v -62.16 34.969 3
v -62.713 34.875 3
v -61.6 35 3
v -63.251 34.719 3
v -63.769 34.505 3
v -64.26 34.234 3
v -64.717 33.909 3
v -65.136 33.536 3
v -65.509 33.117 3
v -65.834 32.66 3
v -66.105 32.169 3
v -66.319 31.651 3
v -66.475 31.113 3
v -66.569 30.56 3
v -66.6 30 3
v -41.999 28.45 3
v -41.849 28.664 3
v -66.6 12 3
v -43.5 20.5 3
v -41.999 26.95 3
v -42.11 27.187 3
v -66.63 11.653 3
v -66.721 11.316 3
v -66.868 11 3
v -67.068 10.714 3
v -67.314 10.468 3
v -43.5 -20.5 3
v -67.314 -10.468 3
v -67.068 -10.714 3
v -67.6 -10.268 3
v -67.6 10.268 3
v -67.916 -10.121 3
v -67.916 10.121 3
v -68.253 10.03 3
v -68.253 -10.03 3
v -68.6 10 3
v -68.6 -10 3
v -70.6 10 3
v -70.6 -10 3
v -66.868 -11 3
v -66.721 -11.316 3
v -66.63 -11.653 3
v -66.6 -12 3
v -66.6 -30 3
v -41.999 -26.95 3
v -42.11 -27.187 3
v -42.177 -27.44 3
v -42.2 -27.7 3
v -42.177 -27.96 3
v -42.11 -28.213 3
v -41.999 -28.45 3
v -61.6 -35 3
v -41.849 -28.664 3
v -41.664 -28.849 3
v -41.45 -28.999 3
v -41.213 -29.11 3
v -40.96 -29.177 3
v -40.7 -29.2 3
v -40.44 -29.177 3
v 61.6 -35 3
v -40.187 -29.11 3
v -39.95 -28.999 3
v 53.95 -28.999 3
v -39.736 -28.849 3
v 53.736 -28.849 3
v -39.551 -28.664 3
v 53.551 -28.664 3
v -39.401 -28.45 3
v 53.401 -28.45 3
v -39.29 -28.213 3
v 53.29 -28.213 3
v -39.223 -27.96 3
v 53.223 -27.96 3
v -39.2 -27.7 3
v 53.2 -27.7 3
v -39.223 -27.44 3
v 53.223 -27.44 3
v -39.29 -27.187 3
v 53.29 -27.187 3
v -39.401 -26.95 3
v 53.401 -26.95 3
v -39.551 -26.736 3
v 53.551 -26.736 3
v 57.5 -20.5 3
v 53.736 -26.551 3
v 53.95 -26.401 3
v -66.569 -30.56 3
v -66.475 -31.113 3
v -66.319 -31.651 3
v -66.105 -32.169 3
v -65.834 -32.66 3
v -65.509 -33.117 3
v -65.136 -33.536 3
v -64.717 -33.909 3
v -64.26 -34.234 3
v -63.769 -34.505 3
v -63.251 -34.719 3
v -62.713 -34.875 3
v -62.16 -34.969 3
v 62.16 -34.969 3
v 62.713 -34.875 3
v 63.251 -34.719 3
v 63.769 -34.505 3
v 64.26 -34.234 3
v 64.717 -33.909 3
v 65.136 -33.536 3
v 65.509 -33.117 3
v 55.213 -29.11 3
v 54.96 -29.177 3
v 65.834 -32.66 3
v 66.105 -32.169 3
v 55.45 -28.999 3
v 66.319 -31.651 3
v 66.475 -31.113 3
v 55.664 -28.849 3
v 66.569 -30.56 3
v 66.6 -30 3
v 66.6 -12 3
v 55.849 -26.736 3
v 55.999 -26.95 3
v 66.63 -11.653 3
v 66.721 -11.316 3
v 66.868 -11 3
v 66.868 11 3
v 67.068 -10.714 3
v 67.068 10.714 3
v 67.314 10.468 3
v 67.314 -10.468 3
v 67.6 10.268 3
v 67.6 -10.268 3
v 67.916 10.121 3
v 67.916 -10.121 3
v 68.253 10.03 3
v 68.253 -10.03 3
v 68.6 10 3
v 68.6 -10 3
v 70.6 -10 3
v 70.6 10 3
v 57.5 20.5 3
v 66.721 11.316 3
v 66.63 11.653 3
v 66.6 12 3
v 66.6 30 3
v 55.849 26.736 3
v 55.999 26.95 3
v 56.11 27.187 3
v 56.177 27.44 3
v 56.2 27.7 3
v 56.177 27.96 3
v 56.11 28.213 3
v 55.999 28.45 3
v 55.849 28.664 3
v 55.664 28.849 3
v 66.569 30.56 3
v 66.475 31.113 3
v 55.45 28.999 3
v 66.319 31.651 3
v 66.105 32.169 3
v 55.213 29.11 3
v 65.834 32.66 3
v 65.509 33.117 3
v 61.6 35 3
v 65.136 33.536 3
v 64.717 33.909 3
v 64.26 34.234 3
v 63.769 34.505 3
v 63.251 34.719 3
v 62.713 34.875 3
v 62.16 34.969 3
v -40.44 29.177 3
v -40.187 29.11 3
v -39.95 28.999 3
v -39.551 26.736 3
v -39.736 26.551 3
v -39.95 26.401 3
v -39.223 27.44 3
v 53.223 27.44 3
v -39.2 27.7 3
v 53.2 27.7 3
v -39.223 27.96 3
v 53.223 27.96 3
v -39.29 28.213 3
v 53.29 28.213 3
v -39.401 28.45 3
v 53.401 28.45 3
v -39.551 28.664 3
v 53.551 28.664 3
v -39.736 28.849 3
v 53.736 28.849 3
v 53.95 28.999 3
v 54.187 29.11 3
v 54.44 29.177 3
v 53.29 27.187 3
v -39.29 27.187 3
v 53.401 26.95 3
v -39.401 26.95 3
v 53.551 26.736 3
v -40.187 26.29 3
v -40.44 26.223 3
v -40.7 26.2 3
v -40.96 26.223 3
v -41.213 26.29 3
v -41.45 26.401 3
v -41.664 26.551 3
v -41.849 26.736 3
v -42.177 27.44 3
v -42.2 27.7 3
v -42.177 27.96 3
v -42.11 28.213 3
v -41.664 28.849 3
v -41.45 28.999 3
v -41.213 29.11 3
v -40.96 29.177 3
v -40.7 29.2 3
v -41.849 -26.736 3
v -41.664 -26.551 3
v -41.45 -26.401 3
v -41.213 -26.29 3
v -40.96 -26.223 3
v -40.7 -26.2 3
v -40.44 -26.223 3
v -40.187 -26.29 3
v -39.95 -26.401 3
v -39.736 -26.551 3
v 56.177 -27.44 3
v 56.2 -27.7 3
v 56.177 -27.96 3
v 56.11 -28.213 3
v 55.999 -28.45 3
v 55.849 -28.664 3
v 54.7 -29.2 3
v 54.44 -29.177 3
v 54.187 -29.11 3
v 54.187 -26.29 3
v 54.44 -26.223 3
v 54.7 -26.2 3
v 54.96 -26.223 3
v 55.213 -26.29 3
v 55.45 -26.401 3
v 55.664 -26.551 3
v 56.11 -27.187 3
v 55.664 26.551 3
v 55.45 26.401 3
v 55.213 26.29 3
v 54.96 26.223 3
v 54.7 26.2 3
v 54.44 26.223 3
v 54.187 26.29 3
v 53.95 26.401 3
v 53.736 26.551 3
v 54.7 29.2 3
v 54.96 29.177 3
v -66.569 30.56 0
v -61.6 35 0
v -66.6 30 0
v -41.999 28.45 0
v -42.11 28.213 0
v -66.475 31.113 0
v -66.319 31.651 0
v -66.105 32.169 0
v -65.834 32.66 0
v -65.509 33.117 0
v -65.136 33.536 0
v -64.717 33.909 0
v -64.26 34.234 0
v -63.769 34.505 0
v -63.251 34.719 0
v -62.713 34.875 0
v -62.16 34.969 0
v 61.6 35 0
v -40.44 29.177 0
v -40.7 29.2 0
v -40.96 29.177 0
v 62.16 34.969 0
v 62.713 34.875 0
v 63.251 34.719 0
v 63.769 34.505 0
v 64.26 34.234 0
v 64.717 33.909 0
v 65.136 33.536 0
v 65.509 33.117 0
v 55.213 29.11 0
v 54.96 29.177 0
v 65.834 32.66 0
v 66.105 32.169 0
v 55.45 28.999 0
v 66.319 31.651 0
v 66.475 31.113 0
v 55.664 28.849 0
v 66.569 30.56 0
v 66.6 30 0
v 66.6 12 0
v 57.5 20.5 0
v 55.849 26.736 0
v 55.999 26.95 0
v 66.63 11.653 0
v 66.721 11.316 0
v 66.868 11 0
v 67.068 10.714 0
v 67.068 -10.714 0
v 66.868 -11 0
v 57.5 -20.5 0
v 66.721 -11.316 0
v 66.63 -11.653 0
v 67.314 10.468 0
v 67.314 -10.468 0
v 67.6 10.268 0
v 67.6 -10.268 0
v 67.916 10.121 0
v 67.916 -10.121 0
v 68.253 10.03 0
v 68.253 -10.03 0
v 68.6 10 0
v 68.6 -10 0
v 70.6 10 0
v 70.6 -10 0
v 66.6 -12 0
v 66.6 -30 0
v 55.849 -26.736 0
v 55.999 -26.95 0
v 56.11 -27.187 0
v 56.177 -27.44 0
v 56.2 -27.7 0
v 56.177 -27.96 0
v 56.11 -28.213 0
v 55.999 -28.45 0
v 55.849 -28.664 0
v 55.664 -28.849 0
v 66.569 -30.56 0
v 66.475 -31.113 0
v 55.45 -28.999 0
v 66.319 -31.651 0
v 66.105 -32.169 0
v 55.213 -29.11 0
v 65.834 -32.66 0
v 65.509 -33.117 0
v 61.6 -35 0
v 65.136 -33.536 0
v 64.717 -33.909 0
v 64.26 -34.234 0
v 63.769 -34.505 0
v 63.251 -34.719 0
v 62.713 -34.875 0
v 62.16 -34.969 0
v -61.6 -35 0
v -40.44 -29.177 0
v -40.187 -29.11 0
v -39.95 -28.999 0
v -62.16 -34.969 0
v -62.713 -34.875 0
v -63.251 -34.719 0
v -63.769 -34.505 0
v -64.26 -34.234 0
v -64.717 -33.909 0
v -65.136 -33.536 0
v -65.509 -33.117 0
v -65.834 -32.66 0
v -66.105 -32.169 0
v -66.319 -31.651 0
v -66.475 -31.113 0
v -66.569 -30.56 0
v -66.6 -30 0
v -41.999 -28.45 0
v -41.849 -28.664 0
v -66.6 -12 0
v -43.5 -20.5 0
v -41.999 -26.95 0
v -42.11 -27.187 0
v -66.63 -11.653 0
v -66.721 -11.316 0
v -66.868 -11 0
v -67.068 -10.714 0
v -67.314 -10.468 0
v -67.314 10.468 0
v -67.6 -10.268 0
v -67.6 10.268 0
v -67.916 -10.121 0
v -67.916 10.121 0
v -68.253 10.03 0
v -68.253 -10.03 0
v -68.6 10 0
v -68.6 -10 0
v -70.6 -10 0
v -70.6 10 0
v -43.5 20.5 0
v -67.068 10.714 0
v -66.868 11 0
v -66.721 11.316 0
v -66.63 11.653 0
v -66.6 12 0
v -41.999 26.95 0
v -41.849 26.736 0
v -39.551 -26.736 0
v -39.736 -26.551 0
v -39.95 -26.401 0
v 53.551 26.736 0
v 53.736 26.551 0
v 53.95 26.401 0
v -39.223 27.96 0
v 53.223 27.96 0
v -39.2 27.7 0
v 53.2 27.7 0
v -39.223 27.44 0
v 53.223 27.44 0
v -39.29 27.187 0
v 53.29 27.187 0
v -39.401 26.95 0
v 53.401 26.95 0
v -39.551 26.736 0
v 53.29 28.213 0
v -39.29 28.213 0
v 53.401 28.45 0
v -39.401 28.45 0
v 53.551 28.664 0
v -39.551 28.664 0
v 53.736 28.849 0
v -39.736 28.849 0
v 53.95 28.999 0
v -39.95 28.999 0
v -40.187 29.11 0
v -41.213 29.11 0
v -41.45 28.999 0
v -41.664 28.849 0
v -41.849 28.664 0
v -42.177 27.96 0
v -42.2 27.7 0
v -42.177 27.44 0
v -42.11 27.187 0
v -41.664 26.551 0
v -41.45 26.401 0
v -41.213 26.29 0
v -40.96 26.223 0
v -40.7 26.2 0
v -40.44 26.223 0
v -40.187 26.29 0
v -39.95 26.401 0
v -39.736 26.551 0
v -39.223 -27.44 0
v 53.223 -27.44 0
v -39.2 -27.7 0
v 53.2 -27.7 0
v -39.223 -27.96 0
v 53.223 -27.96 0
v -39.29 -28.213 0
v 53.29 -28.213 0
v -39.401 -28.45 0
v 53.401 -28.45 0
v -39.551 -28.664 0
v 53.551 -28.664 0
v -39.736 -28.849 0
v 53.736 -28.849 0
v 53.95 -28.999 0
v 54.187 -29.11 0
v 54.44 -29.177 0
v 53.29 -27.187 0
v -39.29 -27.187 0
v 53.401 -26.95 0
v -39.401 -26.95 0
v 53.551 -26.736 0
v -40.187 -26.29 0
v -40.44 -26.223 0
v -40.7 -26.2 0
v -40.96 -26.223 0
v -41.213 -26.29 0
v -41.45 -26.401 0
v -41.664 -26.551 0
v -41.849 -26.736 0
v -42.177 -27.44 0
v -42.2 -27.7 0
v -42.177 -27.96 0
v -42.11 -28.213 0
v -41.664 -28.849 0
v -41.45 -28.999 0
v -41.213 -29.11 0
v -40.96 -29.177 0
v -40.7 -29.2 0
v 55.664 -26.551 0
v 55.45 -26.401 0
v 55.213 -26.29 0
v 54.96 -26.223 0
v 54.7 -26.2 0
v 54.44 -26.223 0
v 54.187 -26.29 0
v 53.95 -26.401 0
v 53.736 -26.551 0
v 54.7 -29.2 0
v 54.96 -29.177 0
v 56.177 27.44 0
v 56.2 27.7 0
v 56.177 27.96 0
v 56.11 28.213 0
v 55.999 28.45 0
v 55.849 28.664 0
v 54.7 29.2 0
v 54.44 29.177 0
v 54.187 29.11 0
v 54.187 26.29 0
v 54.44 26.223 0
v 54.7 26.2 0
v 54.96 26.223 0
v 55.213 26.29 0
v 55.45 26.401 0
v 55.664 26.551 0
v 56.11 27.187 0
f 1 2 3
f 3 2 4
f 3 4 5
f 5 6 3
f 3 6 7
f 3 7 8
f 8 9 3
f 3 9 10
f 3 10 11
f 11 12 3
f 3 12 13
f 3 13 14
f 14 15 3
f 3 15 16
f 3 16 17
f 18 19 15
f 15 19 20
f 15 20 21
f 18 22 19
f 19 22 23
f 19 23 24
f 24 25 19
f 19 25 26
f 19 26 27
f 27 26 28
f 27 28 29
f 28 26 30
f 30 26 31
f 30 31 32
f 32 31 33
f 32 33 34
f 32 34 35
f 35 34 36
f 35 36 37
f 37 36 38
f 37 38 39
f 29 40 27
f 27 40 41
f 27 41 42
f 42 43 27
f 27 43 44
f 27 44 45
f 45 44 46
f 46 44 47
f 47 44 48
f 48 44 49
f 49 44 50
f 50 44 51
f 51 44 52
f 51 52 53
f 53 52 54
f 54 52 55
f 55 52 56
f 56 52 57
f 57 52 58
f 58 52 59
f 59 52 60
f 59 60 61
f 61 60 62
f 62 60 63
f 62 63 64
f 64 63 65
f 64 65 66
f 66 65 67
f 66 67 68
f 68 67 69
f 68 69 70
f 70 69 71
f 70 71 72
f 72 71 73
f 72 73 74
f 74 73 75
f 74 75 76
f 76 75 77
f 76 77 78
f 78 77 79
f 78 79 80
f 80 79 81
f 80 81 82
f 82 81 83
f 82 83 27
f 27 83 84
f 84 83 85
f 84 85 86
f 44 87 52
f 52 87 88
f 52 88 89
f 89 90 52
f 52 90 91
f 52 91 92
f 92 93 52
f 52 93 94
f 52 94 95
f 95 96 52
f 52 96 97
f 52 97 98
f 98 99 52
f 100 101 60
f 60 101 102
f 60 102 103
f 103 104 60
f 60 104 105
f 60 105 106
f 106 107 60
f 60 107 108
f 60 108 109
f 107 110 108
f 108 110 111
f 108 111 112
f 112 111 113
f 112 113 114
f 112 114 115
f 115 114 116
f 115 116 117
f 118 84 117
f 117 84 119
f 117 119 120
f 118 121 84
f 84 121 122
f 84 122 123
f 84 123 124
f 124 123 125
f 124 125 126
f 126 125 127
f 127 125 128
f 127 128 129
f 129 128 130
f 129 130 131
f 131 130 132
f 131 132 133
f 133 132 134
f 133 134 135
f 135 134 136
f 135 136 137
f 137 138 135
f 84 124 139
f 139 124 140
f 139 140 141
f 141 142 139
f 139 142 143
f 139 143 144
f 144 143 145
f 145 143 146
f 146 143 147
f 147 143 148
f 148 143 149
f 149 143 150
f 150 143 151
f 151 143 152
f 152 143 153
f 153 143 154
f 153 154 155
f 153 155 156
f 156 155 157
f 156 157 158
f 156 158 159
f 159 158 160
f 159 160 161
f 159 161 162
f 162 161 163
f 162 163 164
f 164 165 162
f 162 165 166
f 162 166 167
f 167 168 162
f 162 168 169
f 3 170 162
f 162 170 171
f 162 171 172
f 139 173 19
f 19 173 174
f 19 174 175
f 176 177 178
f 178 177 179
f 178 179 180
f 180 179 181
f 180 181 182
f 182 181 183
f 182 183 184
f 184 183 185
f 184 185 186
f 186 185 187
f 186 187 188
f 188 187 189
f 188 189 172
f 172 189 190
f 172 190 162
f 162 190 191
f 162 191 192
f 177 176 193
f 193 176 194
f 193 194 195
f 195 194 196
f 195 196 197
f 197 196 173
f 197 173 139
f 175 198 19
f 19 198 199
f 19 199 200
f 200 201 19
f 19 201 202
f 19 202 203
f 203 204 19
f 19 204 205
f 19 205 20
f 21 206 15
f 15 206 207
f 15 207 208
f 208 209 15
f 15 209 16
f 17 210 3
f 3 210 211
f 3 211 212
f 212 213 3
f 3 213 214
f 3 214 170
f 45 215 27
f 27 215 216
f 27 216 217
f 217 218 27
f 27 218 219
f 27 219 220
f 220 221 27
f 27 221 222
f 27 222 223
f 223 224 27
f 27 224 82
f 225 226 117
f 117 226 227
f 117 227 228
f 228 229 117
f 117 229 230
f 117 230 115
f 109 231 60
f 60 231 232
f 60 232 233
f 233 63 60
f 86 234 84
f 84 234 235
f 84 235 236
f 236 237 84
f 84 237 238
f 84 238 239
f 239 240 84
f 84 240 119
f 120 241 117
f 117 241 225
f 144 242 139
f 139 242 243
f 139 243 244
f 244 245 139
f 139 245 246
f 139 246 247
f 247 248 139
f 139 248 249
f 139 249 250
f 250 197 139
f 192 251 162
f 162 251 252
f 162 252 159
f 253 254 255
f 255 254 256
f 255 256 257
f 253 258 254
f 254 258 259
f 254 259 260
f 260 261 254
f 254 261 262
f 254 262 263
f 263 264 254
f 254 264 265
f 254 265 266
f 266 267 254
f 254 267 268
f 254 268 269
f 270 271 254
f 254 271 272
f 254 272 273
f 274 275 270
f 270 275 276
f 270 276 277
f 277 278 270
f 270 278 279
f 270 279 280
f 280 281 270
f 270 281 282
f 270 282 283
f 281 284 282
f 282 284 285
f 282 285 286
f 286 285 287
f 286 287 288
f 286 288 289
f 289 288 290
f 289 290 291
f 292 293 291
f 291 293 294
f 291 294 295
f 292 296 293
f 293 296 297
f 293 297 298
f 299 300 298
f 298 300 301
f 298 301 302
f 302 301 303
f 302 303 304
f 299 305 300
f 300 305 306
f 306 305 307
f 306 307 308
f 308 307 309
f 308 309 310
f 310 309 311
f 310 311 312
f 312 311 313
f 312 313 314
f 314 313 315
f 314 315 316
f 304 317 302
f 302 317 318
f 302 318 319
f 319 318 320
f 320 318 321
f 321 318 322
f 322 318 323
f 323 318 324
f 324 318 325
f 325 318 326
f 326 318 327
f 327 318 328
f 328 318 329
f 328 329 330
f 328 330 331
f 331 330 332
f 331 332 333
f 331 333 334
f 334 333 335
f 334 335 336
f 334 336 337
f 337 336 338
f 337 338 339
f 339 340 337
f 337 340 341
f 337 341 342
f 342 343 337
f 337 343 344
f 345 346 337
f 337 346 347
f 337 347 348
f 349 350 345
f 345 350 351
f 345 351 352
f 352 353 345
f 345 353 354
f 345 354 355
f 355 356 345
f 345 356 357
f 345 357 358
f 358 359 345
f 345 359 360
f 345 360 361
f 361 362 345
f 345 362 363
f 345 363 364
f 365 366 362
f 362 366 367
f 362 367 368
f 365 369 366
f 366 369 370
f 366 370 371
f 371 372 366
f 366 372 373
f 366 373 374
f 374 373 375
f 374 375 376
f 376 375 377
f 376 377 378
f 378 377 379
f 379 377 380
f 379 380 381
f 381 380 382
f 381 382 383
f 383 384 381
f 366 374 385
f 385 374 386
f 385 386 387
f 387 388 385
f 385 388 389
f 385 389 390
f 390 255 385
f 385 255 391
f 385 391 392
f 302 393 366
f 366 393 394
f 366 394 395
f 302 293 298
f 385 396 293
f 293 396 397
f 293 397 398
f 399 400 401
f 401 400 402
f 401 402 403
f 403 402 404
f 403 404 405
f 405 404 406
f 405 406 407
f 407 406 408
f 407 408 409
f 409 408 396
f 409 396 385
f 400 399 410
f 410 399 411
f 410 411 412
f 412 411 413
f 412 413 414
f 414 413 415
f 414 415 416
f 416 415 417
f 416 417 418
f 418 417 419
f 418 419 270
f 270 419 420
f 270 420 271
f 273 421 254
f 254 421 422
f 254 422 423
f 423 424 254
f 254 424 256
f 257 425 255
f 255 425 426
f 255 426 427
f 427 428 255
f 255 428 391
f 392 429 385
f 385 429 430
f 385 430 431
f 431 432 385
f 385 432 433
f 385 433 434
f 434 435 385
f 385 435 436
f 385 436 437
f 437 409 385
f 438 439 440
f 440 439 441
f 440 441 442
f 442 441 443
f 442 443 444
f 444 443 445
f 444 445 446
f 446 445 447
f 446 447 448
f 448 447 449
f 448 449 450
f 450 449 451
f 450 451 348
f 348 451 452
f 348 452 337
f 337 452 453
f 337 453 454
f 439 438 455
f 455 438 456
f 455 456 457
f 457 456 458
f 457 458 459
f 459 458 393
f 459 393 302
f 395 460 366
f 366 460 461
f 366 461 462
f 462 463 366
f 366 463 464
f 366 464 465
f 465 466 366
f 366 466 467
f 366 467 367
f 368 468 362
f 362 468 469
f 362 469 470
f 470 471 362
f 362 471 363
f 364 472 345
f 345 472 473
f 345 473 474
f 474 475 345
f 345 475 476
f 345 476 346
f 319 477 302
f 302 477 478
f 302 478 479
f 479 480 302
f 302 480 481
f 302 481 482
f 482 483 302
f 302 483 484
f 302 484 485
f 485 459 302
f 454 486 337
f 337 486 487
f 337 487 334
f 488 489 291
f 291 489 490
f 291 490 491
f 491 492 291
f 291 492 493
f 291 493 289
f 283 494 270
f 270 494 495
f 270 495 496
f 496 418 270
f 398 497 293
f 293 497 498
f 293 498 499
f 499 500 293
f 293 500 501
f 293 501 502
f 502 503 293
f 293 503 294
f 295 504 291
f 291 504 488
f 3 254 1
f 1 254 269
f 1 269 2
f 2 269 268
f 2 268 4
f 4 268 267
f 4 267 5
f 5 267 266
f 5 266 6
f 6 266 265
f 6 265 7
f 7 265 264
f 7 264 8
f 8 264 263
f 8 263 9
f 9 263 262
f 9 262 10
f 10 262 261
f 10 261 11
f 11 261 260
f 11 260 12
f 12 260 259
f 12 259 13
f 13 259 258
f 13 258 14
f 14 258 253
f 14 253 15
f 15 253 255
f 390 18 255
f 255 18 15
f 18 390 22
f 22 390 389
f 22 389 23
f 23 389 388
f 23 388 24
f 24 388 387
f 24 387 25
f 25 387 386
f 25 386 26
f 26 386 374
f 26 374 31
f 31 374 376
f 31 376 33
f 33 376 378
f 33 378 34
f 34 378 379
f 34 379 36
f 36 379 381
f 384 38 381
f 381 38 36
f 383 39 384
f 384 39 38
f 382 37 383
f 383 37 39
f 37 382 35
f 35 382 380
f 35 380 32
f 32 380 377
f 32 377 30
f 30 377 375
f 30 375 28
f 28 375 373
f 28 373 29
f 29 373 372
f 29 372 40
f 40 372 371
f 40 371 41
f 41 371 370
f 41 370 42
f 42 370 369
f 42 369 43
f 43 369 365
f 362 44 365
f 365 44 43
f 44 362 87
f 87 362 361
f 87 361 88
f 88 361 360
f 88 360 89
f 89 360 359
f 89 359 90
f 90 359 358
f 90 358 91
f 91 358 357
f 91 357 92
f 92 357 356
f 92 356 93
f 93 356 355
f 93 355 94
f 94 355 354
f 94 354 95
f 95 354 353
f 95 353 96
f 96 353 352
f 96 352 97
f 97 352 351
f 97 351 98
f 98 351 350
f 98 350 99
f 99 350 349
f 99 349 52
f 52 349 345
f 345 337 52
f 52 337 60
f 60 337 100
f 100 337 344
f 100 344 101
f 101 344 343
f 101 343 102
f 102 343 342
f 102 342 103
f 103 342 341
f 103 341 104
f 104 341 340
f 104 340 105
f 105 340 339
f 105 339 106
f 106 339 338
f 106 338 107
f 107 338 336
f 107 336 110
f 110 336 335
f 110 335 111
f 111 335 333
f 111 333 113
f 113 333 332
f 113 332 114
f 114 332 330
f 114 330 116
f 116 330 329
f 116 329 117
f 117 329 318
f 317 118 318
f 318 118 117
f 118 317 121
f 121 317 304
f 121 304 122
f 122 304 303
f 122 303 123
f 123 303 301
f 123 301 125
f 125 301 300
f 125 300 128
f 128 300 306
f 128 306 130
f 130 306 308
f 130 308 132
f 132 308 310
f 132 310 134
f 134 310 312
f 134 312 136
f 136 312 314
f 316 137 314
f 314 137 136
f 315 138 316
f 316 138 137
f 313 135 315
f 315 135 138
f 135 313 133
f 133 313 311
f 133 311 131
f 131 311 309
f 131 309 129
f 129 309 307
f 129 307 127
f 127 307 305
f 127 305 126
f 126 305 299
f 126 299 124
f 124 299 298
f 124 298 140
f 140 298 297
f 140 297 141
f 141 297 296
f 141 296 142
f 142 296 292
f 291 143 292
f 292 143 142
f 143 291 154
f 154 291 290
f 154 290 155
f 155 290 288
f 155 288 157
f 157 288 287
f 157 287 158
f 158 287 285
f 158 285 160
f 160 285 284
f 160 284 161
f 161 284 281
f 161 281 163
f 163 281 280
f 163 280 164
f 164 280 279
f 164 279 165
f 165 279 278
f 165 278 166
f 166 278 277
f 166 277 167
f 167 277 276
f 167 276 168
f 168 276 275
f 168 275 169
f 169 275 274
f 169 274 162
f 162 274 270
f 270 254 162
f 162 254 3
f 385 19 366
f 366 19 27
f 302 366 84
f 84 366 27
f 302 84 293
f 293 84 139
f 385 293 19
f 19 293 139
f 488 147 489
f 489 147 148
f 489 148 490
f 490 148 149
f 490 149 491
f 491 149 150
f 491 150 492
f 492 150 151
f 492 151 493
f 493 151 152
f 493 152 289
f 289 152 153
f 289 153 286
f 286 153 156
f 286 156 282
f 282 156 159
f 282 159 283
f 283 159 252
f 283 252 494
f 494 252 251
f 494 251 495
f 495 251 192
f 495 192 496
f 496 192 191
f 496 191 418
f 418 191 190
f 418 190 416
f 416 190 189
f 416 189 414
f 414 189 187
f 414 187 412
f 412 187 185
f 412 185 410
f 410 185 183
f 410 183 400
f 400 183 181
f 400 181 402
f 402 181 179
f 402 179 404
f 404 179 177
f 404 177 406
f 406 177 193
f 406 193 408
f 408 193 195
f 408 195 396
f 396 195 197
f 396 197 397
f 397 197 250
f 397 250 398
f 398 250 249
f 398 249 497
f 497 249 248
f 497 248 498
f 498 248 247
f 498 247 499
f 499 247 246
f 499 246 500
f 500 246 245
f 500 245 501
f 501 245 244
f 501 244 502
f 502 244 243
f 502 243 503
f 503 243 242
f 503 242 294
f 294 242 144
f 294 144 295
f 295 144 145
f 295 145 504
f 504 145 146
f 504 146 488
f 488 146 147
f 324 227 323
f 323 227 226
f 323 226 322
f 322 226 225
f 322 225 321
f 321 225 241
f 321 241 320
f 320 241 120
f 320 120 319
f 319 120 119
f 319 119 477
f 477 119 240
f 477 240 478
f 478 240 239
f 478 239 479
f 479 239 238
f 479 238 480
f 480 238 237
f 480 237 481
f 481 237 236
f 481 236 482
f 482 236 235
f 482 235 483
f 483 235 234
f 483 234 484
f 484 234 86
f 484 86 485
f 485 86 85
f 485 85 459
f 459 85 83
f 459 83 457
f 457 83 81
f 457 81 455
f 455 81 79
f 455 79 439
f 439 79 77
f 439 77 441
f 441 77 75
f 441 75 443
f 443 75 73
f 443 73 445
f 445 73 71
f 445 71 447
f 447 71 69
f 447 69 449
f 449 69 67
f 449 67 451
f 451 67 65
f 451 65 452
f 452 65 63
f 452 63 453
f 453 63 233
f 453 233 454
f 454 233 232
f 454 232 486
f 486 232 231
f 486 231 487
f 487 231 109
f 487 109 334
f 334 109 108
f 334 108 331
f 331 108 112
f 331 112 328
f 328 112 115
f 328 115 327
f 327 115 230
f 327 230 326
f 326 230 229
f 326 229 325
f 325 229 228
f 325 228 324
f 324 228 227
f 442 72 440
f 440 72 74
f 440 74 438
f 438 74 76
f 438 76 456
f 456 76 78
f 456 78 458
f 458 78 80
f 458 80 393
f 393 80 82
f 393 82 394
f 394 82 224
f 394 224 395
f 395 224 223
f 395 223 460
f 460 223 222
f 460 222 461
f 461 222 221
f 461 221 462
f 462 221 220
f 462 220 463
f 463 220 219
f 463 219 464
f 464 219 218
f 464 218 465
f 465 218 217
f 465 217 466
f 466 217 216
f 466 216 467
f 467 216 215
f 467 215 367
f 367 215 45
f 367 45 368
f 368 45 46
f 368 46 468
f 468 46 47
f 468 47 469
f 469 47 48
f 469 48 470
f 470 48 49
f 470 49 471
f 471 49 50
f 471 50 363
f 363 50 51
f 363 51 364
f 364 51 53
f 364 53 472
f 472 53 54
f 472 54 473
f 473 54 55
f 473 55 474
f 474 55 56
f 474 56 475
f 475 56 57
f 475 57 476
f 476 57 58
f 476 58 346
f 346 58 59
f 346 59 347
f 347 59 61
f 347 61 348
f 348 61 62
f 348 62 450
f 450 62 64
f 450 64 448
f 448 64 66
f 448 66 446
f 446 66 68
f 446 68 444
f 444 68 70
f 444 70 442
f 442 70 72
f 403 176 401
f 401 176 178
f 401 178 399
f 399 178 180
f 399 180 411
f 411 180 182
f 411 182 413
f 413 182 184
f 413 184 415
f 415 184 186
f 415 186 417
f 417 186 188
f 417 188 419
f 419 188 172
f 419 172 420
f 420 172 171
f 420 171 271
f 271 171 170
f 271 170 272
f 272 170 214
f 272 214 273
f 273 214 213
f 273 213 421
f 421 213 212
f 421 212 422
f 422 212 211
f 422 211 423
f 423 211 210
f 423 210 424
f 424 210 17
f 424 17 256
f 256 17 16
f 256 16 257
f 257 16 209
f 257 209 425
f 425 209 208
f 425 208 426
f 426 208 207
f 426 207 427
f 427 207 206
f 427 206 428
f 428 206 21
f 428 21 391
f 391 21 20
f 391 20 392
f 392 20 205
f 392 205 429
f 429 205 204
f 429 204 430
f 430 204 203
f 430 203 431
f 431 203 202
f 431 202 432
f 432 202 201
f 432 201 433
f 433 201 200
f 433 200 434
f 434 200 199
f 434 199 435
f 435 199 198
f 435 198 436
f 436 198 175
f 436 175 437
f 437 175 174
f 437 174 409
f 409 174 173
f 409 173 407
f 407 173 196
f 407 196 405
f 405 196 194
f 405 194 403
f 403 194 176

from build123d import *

# Parameters (mm, degrees)
ESQUISSE1_W                       = 101
ESQUISSE1_H                       = 41
BOSS_EXTRU_1_DEPTH                = 3
DIAM_TRE_DU_PER_AGE_3_0_3_1_D     = 3
DIAM_TRE_DU_PER_AGE_3_0_3_1_DEPTH = 3


with BuildPart() as part:
    # Esquisse1 → Boss.-Extru.1 (new body)
    with BuildSketch(Plane.XY):
        with BuildLine():
            Line((66.6, 30), (66.6, 12))
            ThreePointArc((66.6, 12), (67.185786438, 10.585786438), (68.6, 10))
            Line((68.6, 10), (70.6, 10))
            Line((70.6, 10), (70.6, -10))
            Line((70.6, -10), (68.6, -10))
            ThreePointArc((68.6, -10), (67.185786438, -10.585786438), (66.6, -12))
            Line((66.6, -12), (66.6, -30))
            ThreePointArc((66.6, -30), (65.135533906, -33.535533906), (61.6, -35))
            Line((61.6, -35), (-61.6, -35))
            ThreePointArc((-61.6, -35), (-65.135533906, -33.535533906), (-66.6, -30))
            Line((-66.6, -30), (-66.6, -12))
            ThreePointArc((-66.6, -12), (-67.185786438, -10.585786438), (-68.6, -10))
            Line((-68.6, -10), (-70.6, -10))
            Line((-70.6, -10), (-70.6, 10))
            Line((-70.6, 10), (-68.6, 10))
            ThreePointArc((-68.6, 10), (-67.185786438, 10.585786438), (-66.6, 12))
            Line((-66.6, 12), (-66.6, 30))
            ThreePointArc((-66.6, 30), (-65.135533906, 33.535533906), (-61.6, 35))
            Line((-61.6, 35), (61.6, 35))
            ThreePointArc((61.6, 35), (65.135533906, 33.535533906), (66.6, 30))
        make_face()
        with Locations((7, 0)):
            Rectangle(ESQUISSE1_W, ESQUISSE1_H, mode=Mode.SUBTRACT)
    extrude(amount=BOSS_EXTRU_1_DEPTH)

    # Diamètre du perçage Ø3.0 (3)1
    with Locations(Plane.XY.offset(3)):
        with Locations((-40.7, 27.7), (-40.7, -27.7), (54.7, -27.7), (54.7, 27.7)):
            Hole(DIAM_TRE_DU_PER_AGE_3_0_3_1_D / 2, depth=DIAM_TRE_DU_PER_AGE_3_0_3_1_DEPTH)


solid = part.part
